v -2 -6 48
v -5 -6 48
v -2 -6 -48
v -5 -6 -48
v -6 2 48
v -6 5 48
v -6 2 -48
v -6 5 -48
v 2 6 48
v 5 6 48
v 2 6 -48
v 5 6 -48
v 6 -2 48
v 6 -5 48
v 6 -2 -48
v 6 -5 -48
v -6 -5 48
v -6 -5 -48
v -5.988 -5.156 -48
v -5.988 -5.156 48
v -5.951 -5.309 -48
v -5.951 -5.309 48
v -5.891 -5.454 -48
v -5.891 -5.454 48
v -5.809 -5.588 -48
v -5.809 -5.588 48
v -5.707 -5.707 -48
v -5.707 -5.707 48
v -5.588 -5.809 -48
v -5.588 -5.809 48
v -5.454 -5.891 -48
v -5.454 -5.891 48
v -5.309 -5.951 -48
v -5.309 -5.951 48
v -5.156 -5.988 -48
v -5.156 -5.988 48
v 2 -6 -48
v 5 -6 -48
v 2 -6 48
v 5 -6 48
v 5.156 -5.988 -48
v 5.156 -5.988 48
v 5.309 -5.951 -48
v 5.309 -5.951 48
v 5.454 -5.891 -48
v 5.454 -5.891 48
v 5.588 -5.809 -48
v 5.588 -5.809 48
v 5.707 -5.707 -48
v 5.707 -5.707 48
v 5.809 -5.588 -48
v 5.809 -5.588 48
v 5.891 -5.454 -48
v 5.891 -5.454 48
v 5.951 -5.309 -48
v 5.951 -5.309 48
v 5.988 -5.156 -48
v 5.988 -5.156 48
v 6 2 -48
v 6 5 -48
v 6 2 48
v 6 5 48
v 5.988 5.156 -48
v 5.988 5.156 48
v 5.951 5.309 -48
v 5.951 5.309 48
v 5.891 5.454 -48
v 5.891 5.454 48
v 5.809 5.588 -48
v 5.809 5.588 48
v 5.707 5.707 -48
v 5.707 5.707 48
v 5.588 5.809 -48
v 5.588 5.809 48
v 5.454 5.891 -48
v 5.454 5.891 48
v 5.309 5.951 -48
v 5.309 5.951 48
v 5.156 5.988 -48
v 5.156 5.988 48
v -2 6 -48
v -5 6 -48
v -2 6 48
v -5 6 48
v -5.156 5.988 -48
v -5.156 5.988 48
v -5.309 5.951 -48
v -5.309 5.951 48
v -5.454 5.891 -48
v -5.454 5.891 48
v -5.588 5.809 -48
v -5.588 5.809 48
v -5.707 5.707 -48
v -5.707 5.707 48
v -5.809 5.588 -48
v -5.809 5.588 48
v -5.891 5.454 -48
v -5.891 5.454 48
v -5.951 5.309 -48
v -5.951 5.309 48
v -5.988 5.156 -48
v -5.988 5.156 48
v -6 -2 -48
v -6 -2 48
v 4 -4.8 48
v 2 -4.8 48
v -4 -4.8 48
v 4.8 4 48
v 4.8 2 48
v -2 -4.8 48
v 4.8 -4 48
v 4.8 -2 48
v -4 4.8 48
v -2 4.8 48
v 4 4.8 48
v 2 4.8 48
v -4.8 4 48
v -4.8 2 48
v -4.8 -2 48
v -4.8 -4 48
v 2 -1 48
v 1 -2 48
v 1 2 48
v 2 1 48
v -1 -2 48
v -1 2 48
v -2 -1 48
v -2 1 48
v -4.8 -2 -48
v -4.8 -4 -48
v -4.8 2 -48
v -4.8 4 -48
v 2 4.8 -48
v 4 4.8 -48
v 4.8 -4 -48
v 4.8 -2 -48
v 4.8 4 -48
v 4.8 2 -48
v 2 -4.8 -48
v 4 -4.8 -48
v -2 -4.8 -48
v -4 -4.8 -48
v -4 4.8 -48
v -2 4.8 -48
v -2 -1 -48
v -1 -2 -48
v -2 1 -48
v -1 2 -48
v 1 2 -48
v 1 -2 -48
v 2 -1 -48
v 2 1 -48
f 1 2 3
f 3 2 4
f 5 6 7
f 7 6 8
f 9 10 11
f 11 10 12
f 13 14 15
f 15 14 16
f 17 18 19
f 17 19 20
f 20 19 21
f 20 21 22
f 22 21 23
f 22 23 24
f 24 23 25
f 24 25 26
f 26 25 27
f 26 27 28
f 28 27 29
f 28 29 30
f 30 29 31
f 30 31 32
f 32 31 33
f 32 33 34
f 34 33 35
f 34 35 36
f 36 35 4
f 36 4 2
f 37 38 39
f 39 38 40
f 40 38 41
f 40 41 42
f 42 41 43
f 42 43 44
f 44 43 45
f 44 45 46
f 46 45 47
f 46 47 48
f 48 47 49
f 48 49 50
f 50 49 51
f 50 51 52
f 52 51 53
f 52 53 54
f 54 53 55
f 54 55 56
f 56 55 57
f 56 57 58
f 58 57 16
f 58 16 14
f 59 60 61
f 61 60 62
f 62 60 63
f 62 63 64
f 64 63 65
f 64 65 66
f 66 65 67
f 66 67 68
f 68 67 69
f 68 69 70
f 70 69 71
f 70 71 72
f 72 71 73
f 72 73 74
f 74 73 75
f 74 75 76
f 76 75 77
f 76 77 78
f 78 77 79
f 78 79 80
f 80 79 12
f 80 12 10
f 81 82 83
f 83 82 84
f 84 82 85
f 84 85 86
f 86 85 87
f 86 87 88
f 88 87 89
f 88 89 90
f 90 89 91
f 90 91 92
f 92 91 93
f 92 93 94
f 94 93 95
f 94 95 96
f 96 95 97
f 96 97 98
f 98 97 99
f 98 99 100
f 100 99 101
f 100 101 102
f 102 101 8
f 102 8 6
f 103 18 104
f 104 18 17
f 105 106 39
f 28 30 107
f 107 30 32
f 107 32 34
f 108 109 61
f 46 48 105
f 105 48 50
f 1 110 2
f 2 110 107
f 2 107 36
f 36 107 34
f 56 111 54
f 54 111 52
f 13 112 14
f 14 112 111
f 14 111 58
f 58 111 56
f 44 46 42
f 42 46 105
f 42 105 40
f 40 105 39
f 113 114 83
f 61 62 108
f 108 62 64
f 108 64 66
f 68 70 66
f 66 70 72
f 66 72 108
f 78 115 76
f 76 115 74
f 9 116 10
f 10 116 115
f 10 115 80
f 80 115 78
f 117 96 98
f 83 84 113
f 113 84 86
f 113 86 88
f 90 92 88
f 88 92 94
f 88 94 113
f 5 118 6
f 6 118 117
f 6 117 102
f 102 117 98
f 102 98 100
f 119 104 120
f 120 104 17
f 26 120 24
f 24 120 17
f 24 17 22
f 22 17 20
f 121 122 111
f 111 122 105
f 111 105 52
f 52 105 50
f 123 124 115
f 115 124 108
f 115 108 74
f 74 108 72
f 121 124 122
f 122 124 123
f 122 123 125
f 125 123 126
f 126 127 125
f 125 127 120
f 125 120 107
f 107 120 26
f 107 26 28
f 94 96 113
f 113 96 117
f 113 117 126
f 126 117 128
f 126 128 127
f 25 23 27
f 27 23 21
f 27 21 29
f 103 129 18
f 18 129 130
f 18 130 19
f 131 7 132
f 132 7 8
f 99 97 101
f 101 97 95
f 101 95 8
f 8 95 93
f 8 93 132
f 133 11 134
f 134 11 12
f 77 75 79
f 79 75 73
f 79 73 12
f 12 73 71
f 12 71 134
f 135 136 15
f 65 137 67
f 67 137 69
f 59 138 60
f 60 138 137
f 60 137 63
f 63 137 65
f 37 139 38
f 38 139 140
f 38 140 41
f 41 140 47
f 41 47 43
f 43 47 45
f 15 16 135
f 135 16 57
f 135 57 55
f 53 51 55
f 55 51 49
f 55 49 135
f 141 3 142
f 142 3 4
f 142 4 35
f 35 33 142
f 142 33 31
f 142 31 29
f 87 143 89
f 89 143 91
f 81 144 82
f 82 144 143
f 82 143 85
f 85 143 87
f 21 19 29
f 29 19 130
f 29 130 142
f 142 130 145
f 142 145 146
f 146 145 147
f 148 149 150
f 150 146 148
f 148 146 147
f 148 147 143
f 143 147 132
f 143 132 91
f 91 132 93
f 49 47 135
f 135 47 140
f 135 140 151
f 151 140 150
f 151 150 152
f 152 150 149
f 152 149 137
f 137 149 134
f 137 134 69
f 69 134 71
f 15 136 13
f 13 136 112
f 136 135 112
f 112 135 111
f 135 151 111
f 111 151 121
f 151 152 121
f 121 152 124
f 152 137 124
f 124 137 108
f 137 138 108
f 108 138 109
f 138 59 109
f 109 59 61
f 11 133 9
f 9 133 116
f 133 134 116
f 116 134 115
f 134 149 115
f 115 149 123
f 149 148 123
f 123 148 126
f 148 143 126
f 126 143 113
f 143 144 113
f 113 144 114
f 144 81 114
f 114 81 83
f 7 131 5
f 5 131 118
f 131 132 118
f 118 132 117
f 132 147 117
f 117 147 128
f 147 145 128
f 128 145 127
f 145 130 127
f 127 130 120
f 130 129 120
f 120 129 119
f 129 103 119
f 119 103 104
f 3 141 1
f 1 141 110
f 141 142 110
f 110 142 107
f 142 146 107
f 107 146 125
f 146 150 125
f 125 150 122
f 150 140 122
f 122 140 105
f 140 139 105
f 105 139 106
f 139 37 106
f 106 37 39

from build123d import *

# Parameters (mm, degrees)
EXTRUSION1_DEPTH             = 48
ENL_V_MAT_EXTRU_1_DEPTH      = 97.374270425
R_P_TITION_CIRCULAIRE1_COUNT = 4


with BuildPart() as part:
    # Esquisse1 → Extrusion1 (new, symmetric)
    with BuildSketch(Plane.XY):
        with BuildLine():
            Line((-6, 5), (-6, -5))
            ThreePointArc((-6, -5), (-5.707106781, -5.707106781), (-5, -6))
            Line((-5, -6), (5, -6))
            ThreePointArc((5, -6), (5.707106781, -5.707106781), (6, -5))
            Line((6, -5), (6, 5))
            ThreePointArc((6, 5), (5.707106781, 5.707106781), (5, 6))
            Line((5, 6), (-5, 6))
            ThreePointArc((-5, 6), (-5.707106781, 5.707106781), (-6, 5))
        make_face()
    extrude(amount=EXTRUSION1_DEPTH, both=True)

    # Esquisse3 → Enlèv. mat.-Extru.1 (cut, through all)
    with BuildSketch(Plane.XY.offset(48)):
        Polygon((6, 2), (4.8, 2), (4.8, 4), (2, 1), (2, -1), (4.8, -4), (4.8, -2), (6, -2), align=None)
    enl_v_mat_extru_1 = extrude(amount=-ENL_V_MAT_EXTRU_1_DEPTH, mode=Mode.SUBTRACT)

    # Répétition circulaire1: Enlèv. mat.-Extru.1 ×4 about axis
    r_p_tition_circulaire1_axis = Axis((0, 0, -1), (0, 0, 1))
    for i in range(1, R_P_TITION_CIRCULAIRE1_COUNT):
        add(enl_v_mat_extru_1.rotate(r_p_tition_circulaire1_axis, i * 360 / R_P_TITION_CIRCULAIRE1_COUNT), mode=Mode.SUBTRACT)


solid = part.part
